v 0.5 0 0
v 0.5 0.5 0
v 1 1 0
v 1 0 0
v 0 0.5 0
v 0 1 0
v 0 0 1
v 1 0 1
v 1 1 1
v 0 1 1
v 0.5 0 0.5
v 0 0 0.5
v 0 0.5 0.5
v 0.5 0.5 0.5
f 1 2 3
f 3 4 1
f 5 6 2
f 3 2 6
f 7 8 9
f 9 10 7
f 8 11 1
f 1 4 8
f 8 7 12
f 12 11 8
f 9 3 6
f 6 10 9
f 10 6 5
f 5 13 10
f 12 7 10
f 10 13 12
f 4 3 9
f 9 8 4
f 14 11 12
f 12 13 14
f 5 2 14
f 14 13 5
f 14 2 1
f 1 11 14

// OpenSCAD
difference() {
  cube([1, 1, 1]);
  scale([0.5000000000, 0.5000000000, 0.5000000000]) {
    cube([1, 1, 1]);
  }
}
